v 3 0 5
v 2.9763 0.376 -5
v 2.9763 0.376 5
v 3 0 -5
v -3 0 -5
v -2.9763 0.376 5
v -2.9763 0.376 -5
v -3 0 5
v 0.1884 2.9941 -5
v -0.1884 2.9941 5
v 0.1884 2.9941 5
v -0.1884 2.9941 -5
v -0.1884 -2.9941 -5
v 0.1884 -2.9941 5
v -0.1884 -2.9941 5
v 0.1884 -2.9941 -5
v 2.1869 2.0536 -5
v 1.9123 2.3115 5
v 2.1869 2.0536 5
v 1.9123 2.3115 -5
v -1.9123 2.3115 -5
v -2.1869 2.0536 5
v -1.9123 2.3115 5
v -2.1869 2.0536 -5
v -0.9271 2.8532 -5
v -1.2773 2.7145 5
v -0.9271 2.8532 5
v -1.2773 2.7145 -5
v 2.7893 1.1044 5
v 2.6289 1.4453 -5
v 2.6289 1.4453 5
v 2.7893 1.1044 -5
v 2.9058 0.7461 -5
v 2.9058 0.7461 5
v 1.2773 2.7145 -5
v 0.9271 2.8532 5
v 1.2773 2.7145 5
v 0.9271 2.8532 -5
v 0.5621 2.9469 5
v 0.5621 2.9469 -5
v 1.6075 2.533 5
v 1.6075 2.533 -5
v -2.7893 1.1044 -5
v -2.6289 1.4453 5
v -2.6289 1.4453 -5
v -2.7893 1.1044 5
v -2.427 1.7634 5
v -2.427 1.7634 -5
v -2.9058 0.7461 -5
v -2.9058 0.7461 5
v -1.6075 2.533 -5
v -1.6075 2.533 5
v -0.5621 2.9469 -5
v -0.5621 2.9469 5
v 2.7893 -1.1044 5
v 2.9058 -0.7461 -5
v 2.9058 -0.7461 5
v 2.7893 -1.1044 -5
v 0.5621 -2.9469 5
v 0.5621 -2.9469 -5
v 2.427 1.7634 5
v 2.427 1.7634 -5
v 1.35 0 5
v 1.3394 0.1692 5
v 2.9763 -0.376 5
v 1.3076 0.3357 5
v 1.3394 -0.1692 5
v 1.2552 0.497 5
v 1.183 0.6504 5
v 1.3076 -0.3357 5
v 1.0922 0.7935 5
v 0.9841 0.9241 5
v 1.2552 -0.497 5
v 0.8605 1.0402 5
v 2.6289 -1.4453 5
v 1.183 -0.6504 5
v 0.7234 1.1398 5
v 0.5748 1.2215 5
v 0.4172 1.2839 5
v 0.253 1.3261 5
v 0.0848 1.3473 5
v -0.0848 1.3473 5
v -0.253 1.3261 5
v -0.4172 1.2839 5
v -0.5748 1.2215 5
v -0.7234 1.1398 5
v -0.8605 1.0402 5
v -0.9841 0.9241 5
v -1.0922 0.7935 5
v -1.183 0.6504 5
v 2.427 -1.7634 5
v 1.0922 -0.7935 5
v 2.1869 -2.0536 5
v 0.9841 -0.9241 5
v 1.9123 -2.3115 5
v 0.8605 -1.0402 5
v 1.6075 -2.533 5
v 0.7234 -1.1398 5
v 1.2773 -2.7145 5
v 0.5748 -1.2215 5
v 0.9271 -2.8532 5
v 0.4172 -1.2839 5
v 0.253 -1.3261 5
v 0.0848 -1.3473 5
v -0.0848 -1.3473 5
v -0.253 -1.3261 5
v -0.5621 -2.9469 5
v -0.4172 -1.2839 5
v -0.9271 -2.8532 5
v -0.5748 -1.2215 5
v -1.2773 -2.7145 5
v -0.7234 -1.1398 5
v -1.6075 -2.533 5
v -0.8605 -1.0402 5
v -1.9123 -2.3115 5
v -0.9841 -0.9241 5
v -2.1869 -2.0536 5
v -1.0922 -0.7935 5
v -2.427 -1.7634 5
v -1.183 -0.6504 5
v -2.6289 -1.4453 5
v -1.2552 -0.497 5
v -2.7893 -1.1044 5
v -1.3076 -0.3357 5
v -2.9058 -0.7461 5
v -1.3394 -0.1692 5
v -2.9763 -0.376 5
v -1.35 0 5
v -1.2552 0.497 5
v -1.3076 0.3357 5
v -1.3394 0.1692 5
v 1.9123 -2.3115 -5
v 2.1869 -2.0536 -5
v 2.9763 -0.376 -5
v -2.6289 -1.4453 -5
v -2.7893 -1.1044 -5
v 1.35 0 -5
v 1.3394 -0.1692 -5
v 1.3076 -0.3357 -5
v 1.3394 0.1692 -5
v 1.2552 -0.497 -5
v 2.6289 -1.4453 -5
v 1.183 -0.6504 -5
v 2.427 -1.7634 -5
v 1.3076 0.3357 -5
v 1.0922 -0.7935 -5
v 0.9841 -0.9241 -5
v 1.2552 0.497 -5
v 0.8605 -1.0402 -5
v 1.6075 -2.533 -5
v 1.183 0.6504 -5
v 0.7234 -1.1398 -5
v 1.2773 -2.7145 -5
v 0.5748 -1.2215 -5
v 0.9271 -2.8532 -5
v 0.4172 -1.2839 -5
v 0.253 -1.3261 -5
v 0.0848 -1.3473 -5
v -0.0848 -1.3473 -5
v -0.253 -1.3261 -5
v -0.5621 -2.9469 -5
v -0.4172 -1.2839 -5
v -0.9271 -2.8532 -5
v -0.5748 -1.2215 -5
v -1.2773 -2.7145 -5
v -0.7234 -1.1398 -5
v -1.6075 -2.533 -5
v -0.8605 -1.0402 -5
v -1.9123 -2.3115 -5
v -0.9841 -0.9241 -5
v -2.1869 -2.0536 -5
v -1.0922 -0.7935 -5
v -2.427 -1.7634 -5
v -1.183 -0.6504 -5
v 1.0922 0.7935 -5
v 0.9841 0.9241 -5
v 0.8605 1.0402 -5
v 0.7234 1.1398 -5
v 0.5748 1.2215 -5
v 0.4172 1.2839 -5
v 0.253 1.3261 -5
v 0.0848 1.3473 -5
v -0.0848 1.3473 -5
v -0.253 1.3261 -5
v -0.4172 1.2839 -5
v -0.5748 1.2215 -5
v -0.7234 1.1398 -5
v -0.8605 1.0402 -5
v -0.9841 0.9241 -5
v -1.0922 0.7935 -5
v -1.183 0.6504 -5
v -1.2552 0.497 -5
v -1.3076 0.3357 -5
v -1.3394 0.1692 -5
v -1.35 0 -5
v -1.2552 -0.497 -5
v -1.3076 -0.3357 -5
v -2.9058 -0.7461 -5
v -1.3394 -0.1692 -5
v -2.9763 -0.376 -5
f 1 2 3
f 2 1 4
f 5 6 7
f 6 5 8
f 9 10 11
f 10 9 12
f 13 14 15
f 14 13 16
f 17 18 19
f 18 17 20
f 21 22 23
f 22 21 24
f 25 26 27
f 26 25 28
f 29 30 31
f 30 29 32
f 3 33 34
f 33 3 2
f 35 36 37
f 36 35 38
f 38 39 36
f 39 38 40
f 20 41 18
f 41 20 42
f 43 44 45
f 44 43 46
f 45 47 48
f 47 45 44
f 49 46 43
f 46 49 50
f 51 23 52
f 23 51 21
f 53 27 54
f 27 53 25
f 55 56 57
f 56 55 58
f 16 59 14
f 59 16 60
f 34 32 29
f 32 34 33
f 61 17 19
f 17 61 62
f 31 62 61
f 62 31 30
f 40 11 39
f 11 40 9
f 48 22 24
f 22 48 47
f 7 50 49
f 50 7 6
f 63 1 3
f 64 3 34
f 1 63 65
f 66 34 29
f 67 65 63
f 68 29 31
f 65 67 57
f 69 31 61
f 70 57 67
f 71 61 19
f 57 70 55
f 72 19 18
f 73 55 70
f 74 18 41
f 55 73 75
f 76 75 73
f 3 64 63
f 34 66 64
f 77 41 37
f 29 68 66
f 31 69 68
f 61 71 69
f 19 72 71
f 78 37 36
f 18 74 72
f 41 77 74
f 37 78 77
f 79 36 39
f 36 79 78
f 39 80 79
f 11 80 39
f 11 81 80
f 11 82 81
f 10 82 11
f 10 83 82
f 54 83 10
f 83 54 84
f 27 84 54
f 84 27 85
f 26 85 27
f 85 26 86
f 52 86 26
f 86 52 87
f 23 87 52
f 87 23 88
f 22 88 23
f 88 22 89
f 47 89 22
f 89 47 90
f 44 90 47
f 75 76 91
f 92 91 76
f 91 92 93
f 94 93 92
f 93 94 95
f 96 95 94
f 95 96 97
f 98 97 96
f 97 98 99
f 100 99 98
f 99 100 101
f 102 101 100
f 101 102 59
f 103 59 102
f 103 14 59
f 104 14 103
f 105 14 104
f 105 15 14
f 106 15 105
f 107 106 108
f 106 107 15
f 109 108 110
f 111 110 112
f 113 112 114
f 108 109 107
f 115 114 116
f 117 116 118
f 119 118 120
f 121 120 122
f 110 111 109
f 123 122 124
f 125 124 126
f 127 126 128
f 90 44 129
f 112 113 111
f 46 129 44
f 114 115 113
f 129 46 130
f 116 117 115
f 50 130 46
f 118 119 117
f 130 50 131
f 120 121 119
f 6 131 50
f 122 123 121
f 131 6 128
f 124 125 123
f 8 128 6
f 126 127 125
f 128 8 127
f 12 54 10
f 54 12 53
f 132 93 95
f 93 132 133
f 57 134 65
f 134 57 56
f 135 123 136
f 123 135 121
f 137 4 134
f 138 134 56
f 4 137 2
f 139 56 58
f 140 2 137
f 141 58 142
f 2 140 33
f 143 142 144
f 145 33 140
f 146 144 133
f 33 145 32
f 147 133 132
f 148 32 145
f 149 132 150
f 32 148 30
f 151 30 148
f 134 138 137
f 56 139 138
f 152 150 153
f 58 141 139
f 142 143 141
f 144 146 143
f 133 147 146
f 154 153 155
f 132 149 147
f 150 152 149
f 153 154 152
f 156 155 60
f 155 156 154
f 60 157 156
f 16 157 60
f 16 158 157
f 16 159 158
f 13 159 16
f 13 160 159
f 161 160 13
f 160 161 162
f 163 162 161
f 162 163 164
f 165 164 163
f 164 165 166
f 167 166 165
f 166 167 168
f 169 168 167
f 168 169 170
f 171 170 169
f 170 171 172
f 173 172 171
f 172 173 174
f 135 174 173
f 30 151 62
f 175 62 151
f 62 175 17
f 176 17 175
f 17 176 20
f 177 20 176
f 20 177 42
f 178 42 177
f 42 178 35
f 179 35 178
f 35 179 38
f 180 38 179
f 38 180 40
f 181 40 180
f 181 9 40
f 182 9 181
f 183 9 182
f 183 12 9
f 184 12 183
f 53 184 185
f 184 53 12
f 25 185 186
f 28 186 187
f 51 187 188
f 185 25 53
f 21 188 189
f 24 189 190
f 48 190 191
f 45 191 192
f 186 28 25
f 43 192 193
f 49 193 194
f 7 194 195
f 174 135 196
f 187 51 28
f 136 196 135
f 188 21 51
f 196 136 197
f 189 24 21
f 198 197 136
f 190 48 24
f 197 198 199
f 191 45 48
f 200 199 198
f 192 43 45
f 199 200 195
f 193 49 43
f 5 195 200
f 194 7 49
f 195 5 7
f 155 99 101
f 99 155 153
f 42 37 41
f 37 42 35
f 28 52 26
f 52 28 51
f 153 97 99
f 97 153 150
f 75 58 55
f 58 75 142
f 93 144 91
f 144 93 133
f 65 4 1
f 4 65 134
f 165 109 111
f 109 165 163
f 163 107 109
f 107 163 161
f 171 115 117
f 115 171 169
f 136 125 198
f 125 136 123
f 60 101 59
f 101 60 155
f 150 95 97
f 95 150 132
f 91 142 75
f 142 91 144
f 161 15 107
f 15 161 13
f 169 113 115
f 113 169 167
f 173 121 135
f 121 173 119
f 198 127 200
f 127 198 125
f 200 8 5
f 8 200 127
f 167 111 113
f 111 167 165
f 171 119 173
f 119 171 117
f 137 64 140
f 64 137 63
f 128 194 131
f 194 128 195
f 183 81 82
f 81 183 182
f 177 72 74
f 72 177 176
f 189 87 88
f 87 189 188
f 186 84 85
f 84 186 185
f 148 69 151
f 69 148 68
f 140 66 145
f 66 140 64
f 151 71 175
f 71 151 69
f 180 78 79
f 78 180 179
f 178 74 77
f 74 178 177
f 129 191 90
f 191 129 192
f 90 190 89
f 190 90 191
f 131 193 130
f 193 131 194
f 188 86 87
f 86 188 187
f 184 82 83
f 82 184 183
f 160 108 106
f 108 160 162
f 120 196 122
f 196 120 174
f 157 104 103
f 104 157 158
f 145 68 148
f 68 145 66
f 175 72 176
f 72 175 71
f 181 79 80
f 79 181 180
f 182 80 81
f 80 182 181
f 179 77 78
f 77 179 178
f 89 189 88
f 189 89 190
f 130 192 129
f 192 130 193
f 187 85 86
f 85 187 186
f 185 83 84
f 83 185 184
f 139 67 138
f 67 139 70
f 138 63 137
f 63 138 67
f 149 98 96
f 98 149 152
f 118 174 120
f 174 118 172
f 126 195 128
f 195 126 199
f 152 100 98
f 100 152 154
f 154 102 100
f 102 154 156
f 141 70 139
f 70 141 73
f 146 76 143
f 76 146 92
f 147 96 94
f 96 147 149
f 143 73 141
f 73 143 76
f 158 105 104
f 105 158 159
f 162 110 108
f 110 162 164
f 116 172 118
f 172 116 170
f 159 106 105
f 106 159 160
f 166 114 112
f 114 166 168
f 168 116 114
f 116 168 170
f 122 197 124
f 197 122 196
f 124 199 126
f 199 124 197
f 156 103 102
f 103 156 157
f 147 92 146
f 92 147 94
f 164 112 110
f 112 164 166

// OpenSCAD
$fn = 50;


difference() {
	union() {
		translate(v = [0, 0, -5.0000000000]) {
			cylinder(h = 10, r = 3.0000000000);
		}
	}
	union() {
		translate(v = [0, 0, -100.0000000000]) {
			cylinder(h = 200, r = 1.3500000000);
		}
	}
}
